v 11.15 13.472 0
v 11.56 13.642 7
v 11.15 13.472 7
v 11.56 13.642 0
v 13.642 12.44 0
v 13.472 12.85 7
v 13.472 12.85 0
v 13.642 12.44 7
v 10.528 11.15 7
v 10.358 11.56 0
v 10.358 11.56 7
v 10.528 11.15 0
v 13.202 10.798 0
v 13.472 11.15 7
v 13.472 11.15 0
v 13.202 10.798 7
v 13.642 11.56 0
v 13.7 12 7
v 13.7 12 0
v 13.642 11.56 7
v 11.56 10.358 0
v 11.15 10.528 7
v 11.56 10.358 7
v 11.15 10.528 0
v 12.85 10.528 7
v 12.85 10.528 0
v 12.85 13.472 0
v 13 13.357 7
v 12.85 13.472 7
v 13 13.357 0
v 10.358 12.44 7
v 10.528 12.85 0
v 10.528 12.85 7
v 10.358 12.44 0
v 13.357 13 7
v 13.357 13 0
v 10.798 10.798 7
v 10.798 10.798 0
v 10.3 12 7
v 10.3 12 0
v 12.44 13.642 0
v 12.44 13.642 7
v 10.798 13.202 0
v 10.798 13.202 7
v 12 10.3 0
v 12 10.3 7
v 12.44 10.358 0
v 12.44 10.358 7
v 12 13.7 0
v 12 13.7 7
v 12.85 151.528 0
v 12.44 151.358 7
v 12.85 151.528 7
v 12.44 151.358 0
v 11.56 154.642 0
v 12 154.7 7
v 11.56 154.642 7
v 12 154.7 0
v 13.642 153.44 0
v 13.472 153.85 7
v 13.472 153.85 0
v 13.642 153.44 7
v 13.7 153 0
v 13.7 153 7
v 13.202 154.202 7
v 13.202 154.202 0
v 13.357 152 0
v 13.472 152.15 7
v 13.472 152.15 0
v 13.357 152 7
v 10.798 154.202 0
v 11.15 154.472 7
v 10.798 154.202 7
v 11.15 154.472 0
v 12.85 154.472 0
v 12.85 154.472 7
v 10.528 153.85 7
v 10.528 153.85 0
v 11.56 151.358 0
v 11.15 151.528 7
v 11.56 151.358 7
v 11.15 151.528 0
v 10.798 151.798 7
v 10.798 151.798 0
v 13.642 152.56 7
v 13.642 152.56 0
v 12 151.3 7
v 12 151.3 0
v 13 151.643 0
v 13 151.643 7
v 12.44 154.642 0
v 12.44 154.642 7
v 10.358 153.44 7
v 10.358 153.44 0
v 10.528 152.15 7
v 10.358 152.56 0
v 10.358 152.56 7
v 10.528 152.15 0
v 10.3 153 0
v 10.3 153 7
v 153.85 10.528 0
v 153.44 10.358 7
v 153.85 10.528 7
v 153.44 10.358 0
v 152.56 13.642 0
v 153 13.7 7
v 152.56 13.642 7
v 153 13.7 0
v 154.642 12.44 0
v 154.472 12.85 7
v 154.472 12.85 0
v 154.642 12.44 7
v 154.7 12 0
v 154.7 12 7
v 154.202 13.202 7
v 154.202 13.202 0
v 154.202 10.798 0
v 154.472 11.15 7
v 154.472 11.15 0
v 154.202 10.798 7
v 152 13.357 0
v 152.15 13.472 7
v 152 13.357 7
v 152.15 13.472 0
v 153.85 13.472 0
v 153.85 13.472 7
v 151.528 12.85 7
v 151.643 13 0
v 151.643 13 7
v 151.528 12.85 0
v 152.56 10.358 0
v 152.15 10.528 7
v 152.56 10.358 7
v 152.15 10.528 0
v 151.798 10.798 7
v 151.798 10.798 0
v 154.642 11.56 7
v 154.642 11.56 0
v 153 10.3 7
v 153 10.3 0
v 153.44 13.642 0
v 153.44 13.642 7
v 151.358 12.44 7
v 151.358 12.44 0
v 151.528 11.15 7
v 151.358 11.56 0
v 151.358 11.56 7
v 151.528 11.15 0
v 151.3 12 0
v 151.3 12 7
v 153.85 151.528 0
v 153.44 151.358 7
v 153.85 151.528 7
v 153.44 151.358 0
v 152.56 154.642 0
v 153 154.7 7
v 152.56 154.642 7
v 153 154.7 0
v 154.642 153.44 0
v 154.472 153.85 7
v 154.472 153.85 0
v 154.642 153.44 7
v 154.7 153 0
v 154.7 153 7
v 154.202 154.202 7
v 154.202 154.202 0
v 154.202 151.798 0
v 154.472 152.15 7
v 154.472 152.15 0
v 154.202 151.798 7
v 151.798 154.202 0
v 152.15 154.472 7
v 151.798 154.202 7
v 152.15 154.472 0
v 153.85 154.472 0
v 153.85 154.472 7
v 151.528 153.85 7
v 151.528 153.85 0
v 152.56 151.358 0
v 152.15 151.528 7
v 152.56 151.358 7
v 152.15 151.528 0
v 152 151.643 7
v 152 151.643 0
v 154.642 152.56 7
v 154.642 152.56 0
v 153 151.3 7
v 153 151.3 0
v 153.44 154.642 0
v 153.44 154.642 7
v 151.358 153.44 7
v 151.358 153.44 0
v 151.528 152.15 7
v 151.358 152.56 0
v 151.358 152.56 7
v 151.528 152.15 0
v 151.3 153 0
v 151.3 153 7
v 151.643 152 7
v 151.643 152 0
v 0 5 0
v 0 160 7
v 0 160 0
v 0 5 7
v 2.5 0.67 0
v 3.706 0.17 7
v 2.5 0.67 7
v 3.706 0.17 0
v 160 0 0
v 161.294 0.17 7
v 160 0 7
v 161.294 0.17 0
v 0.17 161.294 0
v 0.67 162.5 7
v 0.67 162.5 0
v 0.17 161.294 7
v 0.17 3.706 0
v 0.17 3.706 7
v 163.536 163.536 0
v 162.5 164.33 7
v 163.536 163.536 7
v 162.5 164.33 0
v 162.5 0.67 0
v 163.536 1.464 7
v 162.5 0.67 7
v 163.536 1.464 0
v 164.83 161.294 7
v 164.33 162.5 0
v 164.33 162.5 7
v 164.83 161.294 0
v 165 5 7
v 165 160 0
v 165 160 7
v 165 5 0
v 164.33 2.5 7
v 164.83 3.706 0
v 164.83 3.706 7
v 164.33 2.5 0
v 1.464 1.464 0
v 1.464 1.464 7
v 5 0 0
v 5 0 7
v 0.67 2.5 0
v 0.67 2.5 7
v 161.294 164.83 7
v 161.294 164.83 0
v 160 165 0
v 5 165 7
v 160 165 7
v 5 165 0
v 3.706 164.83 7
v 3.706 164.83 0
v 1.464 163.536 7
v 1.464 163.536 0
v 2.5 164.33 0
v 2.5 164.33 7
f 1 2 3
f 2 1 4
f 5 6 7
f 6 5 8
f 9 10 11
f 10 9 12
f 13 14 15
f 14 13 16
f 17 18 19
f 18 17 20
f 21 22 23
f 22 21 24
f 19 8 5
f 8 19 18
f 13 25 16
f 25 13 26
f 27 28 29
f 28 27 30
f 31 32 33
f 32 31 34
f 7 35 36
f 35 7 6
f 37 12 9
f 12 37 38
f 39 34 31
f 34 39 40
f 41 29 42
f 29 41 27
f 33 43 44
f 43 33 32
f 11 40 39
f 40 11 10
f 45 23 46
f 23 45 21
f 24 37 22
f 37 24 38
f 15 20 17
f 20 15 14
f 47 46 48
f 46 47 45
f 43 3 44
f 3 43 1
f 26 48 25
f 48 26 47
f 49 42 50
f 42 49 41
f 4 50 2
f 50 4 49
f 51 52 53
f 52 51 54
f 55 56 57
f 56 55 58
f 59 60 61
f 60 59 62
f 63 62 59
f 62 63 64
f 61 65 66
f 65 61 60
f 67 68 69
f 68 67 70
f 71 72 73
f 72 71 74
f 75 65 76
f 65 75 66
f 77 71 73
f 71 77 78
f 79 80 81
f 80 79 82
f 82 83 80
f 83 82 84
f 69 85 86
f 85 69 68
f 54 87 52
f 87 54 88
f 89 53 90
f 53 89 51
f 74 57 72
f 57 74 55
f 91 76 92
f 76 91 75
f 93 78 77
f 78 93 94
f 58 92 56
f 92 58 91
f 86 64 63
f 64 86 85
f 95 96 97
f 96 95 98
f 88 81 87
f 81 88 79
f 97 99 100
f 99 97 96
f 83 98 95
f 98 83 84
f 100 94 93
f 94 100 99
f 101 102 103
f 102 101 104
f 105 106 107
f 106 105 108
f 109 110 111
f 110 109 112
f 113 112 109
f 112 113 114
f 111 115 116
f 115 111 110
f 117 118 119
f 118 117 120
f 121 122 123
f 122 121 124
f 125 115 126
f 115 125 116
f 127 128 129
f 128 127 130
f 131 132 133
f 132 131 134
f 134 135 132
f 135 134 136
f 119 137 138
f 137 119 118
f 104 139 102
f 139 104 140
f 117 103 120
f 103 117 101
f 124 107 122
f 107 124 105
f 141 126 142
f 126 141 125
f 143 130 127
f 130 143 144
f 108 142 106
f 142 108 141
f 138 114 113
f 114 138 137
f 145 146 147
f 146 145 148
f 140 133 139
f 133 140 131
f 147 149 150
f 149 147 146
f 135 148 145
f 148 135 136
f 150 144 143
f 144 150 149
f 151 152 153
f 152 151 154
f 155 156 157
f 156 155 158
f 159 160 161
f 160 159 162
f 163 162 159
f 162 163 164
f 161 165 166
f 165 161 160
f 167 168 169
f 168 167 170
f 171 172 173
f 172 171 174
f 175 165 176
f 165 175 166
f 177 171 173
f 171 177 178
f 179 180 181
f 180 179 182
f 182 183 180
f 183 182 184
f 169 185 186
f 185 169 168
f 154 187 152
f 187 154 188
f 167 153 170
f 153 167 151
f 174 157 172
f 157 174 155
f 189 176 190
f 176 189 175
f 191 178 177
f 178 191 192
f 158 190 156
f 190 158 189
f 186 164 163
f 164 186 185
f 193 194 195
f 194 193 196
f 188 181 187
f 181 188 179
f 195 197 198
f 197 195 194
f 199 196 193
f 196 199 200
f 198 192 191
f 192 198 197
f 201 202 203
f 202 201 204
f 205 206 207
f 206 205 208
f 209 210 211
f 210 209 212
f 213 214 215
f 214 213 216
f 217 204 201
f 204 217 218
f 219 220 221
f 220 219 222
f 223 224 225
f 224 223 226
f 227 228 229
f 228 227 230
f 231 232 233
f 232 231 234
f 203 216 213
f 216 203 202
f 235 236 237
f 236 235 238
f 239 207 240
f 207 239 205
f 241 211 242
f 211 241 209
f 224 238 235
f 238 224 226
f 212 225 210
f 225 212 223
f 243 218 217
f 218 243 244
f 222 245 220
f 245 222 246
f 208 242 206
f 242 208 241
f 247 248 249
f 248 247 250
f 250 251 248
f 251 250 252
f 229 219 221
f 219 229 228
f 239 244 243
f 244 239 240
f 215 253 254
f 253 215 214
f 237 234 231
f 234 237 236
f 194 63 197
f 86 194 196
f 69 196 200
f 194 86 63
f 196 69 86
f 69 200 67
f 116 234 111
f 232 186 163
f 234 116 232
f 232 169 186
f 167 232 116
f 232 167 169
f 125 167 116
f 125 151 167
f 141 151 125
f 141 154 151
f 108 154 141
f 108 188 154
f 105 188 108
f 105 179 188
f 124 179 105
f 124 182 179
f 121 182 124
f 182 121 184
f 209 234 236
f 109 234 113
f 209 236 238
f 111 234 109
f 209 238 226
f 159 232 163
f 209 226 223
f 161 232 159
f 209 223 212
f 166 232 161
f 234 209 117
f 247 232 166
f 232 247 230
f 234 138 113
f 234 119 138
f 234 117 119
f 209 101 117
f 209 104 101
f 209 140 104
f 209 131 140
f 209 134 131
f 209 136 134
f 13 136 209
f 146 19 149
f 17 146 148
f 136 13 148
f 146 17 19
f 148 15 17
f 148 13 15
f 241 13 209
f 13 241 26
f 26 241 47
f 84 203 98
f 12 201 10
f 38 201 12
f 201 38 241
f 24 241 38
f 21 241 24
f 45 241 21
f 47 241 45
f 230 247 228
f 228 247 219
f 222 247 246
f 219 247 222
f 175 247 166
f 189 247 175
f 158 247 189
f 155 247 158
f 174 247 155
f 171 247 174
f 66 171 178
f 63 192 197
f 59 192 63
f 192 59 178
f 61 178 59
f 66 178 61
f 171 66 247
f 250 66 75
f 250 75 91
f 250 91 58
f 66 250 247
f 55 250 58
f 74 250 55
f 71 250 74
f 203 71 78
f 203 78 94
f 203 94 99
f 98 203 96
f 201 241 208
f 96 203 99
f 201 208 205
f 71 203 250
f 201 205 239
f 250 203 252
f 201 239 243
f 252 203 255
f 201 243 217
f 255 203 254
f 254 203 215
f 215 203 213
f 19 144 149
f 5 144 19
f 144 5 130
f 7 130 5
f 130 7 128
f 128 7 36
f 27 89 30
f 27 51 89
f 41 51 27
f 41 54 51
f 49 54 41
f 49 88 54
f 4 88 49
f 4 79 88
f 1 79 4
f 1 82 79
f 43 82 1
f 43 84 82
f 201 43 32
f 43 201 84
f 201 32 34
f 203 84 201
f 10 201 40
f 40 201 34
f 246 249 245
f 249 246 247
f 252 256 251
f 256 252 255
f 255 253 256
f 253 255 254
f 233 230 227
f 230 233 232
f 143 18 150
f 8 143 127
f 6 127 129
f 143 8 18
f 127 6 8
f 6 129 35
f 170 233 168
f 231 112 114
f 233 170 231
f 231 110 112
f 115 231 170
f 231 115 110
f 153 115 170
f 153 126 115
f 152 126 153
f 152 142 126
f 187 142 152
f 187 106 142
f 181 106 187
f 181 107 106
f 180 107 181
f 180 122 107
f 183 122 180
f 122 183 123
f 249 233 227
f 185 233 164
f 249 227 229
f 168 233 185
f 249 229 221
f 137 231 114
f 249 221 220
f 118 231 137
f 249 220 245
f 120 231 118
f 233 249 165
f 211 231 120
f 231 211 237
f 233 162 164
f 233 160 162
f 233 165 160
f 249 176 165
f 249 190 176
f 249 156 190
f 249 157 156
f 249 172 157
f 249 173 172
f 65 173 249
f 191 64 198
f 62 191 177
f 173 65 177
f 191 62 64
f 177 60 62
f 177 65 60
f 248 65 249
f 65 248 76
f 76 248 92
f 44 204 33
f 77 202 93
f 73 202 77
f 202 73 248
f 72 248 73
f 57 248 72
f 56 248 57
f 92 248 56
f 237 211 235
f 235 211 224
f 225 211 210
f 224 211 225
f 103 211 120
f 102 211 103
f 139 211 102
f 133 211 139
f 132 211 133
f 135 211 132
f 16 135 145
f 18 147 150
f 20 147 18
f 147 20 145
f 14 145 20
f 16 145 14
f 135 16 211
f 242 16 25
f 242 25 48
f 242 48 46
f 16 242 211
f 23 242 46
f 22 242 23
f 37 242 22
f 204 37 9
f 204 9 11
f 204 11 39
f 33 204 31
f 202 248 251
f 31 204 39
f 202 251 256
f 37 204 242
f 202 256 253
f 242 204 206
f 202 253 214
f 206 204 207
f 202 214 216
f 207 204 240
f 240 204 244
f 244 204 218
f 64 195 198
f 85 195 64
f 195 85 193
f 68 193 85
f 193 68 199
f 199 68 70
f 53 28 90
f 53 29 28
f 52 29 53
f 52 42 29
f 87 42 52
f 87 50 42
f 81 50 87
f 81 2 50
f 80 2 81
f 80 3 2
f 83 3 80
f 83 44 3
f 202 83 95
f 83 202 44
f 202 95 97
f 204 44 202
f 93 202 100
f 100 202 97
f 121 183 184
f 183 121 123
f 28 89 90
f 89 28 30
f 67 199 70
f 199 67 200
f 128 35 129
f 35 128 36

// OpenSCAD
// file: 00_parameters.scad
// TenderCells DoorCell V1 shared parameters
// Units: millimeters

overall_w = 438;
overall_h = 368;
frame_depth = 56;

clear_w = 242;
clear_h = 312;

rail_thick = 32;
jamb_w = 48;
motor_jamb_w = 78;

// Printability targets
target_bed_xy = 220;
comfortable_part_max = 180;

// Modular frame split dimensions
top_seg_len = overall_w / 3;
bottom_seg_len = overall_w / 3;
left_jamb_seg_h = overall_h / 2;
right_lower_h = 118;
right_motor_h = 156;
right_upper_h = overall_h - right_lower_h - right_motor_h;

// Low-cost electronics envelope used by DoorCell V1.4.
// These dimensions are based on common generic modules, not a custom PCB.
esp32_board = [58, 31, 8];
drv8871_board = [31, 26, 7];
current_sensor_board = [26, 22, 7];
lm2596_board = [44, 22, 14];
inline_fuse_body = [45, 15, 14];
cn3065_board = [44, 24, 8];
electronics_clearance = 1.5;
controller_wall = 3;
controller_box_w = 170;
controller_box_h = 115;
controller_box_d = 46;
controller_lid_insert_offset = 11;
controller_m12_gland_d = 12.8;
controller_m10_gland_d = 10.6;
controller_m8_gland_d = 8.4;
controller_button_d = 16.2;

// Brass heat-set/push-in insert features.
insert_post_d = 8.0;
insert_post_h = 8.0;
insert_pilot_d = 4.6;
insert_pilot_depth = 6.5;
hold_down_screw_clearance = 3.4;

// Motor envelope for common 25GA/JGA25-370 gearmotors with optional encoder.
motor_body_d = 25.0;
motor_body_clearance_d = 27.2;
motor_body_len = 65;
motor_encoder_clearance = 16;
motor_mount_plate = [72, 92, 12];
motor_mount_cradle = [54, 74, 28];

// Optional solar add-on.
solar_panel_w = 145;
solar_panel_h = 145;
solar_panel_t = 4.0;
solar_panel_frame_border = 10;
solar_panel_frame_w = solar_panel_w + 2*solar_panel_frame_border;
solar_panel_frame_h = solar_panel_h + 2*solar_panel_frame_border;
solar_panel_back_depth = 14;
solar_panel_lip_overlap = 3;
solar_ball_d = 22;
solar_ball_socket_clearance = 0.45;
solar_mount_m5 = 5.4;

// Tongue-and-groove frame joints
// Fit target: common FDM printers with PETG/ASA.
// Clearance is per side, so sockets add 2x this value.
tongue_len = 18;
tongue_w = 22;
tongue_z = 10;
tongue_clearance_side = 0.25;
tongue_socket_depth_extra = 0.60;

door_w = 270;
door_h = 326;
door_t = 8;

track_gap = 11;
track_depth = 12;

// Rack-and-pinion drive
// Metric module gear math:
// circular_pitch = PI * module
// pitch_diameter = module * tooth_count
// outside_diameter = module * (tooth_count + 2)
// root_diameter = module * (tooth_count - 2.5)
gear_module = 2.0;
pressure_angle = 20;
gear_backlash = 0.20; // mm removed from rack tooth thickness at pitch line

pinion_teeth = 16;
pinion_pitch_d = gear_module * pinion_teeth;
pinion_pitch_radius = pinion_pitch_d / 2;
pinion_outer_d = gear_module * (pinion_teeth + 2);
pinion_outer_radius = pinion_outer_d / 2;
pinion_root_d = gear_module * (pinion_teeth - 2.5);
pinion_root_radius = pinion_root_d / 2;
pinion_thick = 12;
shaft_d = 6.2;

rack_tooth_count = 15;
rack_circular_pitch = 3.141592653589793 * gear_module;
rack_len = rack_circular_pitch * rack_tooth_count;
rack_w = 18;
rack_t = 6;
rack_addendum = gear_module;
rack_dedendum = 1.25 * gear_module;
rack_tooth_h = rack_addendum + rack_dedendum;
rack_pitch_line_z = rack_dedendum;
rack_tooth_pitch_thickness = rack_circular_pitch / 2 - gear_backlash;
rack_tooth_top_w = rack_tooth_pitch_thickness - 2 * rack_addendum * tan(pressure_angle);
rack_tooth_root_w = rack_tooth_pitch_thickness + 2 * rack_dedendum * tan(pressure_angle);

screw_m3 = 3.4;
screw_m4 = 4.5;
insert_m3 = 4.6;

eps = 0.01;

module rounded_box(size=[10,10,10], r=2) {
  hull() {
    translate([r,r,0]) cylinder(h=size[2], r=r, $fn=24);
    translate([size[0]-r,r,0]) cylinder(h=size[2], r=r, $fn=24);
    translate([r,size[1]-r,0]) cylinder(h=size[2], r=r, $fn=24);
    translate([size[0]-r,size[1]-r,0]) cylinder(h=size[2], r=r, $fn=24);
  }
}

module m3_clearance_hole(h=20) {
  cylinder(h=h, d=screw_m3, $fn=24);
}

module m4_clearance_hole(h=20) {
  cylinder(h=h, d=screw_m4, $fn=24);
}

module heat_insert_hole(h=6) {
  cylinder(h=h, d=insert_m3, $fn=24);
}

module heat_insert_post(h=insert_post_h, d=insert_post_d) {
  difference() {
    cylinder(h=h, d=d, $fn=32);
    translate([0,0,h-insert_pilot_depth+eps])
      cylinder(h=insert_pilot_depth+eps, d=insert_pilot_d, $fn=24);
  }
}

module m3_hold_down_slot(length=10, h=4) {
  hull() {
    translate([-length/2,0,0]) cylinder(h=h, d=hold_down_screw_clearance, $fn=20);
    translate([ length/2,0,0]) cylinder(h=h, d=hold_down_screw_clearance, $fn=20);
  }
}

module rail_channel(length=100) {
  cube([length, track_gap, track_depth]);
}

module frame_tongue_x() {
  rounded_box([tongue_len, tongue_w, tongue_z], r=1.5);
}

module frame_socket_x() {
  cube([
    tongue_len + tongue_socket_depth_extra,
    tongue_w + 2*tongue_clearance_side,
    tongue_z + 2*tongue_clearance_side
  ]);
}

module frame_tongue_y() {
  rounded_box([tongue_w, tongue_len, tongue_z], r=1.5);
}

module frame_socket_y() {
  cube([
    tongue_w + 2*tongue_clearance_side,
    tongue_len + tongue_socket_depth_extra,
    tongue_z + 2*tongue_clearance_side
  ]);
}

module rack_teeth(len=rack_len) {
  teeth = floor(len / rack_circular_pitch);
  for (i=[0:teeth-1]) {
    center = i*rack_circular_pitch + rack_circular_pitch/2;
    translate([0, 0, rack_t-0.20])
      linear_extrude(height=rack_w)
        polygon(points=[
          [center - rack_tooth_root_w/2, 0],
          [center + rack_tooth_root_w/2, 0],
          [center + rack_tooth_top_w/2, rack_tooth_h],
          [center - rack_tooth_top_w/2, rack_tooth_h]
        ]);
  }
}

function polar_point(r, a) = [r * cos(a), r * sin(a)];
// main file
include <00_parameters.scad>

outer_w = solar_panel_frame_w;
outer_h = solar_panel_frame_h;
bezel_t = 7;
window_w = solar_panel_w - 2*solar_panel_lip_overlap;
window_h = solar_panel_h - 2*solar_panel_lip_overlap;

difference() {
  rounded_box([outer_w, outer_h, bezel_t], r=5);

  // Visible panel window. The lip overlaps the 145 mm panel by 3 mm per side.
  translate([
    (outer_w-window_w)/2,
    (outer_h-window_h)/2,
    -eps
  ])
    cube([window_w, window_h, bezel_t+2*eps]);

  // M3 screw clearance holes into the rear tray heat inserts.
  for (x=[12, outer_w-12], y=[12, outer_h-12]) {
    translate([x,y,-eps]) m3_clearance_hole(h=bezel_t+2);
  }
}
